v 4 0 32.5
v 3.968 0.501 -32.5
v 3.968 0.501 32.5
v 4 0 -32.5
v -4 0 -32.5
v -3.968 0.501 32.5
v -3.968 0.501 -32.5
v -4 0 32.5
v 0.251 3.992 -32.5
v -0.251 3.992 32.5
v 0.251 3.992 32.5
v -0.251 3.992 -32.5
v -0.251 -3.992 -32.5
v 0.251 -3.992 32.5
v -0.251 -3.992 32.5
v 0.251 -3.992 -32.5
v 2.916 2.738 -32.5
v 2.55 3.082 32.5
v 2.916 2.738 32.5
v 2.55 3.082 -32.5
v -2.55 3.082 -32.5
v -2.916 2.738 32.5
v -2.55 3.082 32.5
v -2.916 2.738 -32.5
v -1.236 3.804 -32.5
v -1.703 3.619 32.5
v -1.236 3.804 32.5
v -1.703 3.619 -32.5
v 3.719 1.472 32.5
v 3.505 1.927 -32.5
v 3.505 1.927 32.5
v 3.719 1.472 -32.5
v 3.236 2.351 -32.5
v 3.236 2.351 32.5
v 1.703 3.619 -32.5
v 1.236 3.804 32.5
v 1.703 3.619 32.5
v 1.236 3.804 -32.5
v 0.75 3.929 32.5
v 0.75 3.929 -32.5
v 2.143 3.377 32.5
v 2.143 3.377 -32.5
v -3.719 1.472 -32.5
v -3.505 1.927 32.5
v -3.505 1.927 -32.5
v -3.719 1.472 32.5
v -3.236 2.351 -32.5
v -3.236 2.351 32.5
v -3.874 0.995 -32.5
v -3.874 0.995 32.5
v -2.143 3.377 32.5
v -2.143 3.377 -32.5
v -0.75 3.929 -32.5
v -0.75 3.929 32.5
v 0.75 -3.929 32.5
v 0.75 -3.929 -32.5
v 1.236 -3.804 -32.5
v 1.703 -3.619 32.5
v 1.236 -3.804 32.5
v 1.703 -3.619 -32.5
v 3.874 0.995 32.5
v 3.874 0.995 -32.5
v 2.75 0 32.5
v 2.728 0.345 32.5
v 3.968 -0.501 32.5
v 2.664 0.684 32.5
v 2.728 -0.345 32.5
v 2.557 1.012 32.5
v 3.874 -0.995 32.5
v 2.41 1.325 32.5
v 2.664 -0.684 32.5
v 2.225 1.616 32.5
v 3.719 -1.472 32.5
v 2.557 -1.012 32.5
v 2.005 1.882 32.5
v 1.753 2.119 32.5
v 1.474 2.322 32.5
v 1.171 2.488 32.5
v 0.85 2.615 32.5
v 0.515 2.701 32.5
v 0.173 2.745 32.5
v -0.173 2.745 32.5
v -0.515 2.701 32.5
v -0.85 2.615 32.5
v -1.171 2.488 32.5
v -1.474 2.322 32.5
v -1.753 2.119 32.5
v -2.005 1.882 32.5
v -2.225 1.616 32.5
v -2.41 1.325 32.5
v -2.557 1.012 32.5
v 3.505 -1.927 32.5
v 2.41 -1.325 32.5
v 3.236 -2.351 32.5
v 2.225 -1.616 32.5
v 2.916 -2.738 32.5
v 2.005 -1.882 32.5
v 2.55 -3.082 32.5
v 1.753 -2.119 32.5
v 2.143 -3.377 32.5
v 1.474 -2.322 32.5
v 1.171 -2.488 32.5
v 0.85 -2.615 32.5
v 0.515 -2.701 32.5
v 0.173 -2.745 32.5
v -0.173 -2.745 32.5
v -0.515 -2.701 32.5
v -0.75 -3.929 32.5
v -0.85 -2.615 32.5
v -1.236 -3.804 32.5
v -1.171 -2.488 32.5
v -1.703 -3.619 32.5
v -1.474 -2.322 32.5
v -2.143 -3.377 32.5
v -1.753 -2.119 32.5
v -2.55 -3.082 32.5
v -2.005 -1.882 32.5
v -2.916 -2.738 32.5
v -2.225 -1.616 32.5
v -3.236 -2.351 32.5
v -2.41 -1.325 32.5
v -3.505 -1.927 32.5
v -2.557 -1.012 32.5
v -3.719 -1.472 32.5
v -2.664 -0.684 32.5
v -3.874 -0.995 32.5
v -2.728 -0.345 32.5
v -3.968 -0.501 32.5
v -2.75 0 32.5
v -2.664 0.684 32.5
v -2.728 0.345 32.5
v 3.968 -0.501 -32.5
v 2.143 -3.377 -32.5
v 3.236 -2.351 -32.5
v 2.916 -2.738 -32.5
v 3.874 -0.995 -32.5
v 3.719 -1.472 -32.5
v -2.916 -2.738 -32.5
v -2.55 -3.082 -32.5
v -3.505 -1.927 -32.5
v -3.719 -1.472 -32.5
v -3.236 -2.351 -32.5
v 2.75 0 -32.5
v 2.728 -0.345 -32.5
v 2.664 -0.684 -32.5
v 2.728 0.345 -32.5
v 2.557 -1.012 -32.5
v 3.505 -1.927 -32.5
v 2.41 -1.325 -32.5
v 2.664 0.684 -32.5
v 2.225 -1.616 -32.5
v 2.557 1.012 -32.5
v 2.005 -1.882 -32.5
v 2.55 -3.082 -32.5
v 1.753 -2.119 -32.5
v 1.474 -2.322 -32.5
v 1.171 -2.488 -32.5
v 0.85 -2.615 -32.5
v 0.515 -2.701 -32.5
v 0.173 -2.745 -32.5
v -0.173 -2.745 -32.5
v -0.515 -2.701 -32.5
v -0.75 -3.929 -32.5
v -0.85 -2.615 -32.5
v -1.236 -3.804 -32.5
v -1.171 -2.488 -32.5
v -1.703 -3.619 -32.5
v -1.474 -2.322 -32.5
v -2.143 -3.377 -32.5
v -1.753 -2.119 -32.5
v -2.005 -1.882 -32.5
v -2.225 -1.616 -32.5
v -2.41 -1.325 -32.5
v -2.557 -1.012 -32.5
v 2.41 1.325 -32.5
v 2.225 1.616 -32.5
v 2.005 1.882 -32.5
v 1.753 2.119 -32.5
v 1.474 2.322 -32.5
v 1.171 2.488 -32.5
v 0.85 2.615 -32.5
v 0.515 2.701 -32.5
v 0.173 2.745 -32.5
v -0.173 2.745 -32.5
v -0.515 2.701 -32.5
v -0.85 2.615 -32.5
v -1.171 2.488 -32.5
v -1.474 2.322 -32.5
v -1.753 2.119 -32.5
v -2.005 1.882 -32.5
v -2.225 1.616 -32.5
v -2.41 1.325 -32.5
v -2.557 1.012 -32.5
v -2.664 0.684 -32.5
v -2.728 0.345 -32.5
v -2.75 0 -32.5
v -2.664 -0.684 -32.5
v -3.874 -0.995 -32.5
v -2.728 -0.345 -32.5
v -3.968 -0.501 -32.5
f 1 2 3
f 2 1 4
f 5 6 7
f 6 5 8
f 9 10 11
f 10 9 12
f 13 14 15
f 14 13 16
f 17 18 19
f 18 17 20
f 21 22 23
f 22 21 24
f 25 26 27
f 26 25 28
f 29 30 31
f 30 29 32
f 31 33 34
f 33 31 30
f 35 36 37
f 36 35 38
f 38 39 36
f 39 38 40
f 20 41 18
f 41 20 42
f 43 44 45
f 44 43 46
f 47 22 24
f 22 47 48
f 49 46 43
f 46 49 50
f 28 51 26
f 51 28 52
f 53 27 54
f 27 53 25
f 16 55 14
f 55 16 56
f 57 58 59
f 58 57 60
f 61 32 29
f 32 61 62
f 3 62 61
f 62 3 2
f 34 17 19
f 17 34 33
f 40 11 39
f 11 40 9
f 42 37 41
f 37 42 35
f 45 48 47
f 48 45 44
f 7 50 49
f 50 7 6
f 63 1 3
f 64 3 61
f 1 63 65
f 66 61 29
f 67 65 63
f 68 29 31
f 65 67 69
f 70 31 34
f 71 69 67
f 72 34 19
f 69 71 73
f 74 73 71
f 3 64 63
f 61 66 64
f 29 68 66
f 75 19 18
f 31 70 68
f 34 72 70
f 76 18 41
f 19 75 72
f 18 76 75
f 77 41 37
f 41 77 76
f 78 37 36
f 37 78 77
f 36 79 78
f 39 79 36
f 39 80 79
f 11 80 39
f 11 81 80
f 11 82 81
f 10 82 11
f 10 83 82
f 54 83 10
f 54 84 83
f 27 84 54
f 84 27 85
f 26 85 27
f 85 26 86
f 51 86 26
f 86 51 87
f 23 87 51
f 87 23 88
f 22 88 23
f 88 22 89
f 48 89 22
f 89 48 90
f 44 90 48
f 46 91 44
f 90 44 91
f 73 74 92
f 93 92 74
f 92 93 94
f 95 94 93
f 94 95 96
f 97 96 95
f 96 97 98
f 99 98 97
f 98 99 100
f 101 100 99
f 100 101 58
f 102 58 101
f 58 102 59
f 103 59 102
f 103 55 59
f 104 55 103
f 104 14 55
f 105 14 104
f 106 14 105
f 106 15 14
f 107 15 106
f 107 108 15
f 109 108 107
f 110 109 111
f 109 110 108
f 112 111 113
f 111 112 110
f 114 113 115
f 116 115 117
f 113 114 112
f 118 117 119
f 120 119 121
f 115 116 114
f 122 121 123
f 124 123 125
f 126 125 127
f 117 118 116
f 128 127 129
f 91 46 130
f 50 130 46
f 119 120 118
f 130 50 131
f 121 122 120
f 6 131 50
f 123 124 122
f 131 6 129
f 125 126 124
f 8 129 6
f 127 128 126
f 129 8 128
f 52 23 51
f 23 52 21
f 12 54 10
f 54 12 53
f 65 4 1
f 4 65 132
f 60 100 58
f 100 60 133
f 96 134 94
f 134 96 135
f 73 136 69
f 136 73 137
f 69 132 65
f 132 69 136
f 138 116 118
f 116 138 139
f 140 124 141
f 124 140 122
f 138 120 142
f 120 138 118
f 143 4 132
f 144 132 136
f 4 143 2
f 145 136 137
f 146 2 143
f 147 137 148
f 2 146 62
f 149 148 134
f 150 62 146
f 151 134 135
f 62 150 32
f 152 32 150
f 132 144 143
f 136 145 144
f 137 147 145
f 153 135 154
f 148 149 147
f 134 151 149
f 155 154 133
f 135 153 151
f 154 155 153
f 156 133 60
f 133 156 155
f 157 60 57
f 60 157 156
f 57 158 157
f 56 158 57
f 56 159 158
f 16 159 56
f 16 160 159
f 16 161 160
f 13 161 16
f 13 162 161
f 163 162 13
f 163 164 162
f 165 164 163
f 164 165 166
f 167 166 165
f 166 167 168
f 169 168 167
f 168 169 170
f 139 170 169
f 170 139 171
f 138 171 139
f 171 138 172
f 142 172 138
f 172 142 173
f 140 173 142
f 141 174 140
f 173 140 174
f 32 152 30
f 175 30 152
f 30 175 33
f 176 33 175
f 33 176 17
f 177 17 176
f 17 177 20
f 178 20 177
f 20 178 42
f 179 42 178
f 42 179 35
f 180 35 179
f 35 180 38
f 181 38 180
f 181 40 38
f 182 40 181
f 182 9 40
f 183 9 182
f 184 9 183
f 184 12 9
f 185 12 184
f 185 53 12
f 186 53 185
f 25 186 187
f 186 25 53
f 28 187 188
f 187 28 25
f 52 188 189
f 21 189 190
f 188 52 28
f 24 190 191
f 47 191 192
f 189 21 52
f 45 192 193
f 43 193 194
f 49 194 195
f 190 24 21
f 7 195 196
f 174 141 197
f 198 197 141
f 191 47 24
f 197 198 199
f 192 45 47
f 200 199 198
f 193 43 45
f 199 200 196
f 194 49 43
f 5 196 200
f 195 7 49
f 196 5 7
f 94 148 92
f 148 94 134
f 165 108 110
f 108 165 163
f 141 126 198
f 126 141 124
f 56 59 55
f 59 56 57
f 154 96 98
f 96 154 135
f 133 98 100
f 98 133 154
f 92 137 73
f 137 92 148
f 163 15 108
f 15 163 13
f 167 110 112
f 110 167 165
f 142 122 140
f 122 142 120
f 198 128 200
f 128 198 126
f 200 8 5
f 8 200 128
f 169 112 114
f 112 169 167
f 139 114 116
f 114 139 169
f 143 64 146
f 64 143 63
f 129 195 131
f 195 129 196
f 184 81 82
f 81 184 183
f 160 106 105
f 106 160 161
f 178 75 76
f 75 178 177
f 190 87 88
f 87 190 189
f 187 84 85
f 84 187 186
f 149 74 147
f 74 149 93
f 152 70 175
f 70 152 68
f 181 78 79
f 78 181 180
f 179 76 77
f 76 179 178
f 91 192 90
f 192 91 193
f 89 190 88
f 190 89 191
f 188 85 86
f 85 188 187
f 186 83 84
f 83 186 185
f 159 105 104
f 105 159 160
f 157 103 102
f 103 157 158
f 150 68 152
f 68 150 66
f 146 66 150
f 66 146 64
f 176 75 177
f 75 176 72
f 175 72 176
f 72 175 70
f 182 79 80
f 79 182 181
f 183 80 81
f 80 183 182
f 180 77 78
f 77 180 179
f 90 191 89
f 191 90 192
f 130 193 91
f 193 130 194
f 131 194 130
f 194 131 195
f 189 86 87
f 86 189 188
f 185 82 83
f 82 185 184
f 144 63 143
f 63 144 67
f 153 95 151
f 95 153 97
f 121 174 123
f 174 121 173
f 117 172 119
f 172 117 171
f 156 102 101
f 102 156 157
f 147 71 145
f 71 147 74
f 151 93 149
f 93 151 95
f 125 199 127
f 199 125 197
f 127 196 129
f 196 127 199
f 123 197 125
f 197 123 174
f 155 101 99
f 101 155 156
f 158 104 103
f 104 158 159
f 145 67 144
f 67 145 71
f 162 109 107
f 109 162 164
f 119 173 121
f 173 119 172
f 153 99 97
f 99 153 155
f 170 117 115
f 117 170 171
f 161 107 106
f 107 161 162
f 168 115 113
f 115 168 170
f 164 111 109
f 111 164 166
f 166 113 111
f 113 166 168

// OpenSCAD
$fn = 50;


difference() {
	union() {
		translate(v = [0, 0, -32.5000000000]) {
			cylinder(h = 65, r = 4.0000000000);
		}
	}
	union() {
		translate(v = [0, 0, -100.0000000000]) {
			cylinder(h = 200, r = 2.7500000000);
		}
	}
}
